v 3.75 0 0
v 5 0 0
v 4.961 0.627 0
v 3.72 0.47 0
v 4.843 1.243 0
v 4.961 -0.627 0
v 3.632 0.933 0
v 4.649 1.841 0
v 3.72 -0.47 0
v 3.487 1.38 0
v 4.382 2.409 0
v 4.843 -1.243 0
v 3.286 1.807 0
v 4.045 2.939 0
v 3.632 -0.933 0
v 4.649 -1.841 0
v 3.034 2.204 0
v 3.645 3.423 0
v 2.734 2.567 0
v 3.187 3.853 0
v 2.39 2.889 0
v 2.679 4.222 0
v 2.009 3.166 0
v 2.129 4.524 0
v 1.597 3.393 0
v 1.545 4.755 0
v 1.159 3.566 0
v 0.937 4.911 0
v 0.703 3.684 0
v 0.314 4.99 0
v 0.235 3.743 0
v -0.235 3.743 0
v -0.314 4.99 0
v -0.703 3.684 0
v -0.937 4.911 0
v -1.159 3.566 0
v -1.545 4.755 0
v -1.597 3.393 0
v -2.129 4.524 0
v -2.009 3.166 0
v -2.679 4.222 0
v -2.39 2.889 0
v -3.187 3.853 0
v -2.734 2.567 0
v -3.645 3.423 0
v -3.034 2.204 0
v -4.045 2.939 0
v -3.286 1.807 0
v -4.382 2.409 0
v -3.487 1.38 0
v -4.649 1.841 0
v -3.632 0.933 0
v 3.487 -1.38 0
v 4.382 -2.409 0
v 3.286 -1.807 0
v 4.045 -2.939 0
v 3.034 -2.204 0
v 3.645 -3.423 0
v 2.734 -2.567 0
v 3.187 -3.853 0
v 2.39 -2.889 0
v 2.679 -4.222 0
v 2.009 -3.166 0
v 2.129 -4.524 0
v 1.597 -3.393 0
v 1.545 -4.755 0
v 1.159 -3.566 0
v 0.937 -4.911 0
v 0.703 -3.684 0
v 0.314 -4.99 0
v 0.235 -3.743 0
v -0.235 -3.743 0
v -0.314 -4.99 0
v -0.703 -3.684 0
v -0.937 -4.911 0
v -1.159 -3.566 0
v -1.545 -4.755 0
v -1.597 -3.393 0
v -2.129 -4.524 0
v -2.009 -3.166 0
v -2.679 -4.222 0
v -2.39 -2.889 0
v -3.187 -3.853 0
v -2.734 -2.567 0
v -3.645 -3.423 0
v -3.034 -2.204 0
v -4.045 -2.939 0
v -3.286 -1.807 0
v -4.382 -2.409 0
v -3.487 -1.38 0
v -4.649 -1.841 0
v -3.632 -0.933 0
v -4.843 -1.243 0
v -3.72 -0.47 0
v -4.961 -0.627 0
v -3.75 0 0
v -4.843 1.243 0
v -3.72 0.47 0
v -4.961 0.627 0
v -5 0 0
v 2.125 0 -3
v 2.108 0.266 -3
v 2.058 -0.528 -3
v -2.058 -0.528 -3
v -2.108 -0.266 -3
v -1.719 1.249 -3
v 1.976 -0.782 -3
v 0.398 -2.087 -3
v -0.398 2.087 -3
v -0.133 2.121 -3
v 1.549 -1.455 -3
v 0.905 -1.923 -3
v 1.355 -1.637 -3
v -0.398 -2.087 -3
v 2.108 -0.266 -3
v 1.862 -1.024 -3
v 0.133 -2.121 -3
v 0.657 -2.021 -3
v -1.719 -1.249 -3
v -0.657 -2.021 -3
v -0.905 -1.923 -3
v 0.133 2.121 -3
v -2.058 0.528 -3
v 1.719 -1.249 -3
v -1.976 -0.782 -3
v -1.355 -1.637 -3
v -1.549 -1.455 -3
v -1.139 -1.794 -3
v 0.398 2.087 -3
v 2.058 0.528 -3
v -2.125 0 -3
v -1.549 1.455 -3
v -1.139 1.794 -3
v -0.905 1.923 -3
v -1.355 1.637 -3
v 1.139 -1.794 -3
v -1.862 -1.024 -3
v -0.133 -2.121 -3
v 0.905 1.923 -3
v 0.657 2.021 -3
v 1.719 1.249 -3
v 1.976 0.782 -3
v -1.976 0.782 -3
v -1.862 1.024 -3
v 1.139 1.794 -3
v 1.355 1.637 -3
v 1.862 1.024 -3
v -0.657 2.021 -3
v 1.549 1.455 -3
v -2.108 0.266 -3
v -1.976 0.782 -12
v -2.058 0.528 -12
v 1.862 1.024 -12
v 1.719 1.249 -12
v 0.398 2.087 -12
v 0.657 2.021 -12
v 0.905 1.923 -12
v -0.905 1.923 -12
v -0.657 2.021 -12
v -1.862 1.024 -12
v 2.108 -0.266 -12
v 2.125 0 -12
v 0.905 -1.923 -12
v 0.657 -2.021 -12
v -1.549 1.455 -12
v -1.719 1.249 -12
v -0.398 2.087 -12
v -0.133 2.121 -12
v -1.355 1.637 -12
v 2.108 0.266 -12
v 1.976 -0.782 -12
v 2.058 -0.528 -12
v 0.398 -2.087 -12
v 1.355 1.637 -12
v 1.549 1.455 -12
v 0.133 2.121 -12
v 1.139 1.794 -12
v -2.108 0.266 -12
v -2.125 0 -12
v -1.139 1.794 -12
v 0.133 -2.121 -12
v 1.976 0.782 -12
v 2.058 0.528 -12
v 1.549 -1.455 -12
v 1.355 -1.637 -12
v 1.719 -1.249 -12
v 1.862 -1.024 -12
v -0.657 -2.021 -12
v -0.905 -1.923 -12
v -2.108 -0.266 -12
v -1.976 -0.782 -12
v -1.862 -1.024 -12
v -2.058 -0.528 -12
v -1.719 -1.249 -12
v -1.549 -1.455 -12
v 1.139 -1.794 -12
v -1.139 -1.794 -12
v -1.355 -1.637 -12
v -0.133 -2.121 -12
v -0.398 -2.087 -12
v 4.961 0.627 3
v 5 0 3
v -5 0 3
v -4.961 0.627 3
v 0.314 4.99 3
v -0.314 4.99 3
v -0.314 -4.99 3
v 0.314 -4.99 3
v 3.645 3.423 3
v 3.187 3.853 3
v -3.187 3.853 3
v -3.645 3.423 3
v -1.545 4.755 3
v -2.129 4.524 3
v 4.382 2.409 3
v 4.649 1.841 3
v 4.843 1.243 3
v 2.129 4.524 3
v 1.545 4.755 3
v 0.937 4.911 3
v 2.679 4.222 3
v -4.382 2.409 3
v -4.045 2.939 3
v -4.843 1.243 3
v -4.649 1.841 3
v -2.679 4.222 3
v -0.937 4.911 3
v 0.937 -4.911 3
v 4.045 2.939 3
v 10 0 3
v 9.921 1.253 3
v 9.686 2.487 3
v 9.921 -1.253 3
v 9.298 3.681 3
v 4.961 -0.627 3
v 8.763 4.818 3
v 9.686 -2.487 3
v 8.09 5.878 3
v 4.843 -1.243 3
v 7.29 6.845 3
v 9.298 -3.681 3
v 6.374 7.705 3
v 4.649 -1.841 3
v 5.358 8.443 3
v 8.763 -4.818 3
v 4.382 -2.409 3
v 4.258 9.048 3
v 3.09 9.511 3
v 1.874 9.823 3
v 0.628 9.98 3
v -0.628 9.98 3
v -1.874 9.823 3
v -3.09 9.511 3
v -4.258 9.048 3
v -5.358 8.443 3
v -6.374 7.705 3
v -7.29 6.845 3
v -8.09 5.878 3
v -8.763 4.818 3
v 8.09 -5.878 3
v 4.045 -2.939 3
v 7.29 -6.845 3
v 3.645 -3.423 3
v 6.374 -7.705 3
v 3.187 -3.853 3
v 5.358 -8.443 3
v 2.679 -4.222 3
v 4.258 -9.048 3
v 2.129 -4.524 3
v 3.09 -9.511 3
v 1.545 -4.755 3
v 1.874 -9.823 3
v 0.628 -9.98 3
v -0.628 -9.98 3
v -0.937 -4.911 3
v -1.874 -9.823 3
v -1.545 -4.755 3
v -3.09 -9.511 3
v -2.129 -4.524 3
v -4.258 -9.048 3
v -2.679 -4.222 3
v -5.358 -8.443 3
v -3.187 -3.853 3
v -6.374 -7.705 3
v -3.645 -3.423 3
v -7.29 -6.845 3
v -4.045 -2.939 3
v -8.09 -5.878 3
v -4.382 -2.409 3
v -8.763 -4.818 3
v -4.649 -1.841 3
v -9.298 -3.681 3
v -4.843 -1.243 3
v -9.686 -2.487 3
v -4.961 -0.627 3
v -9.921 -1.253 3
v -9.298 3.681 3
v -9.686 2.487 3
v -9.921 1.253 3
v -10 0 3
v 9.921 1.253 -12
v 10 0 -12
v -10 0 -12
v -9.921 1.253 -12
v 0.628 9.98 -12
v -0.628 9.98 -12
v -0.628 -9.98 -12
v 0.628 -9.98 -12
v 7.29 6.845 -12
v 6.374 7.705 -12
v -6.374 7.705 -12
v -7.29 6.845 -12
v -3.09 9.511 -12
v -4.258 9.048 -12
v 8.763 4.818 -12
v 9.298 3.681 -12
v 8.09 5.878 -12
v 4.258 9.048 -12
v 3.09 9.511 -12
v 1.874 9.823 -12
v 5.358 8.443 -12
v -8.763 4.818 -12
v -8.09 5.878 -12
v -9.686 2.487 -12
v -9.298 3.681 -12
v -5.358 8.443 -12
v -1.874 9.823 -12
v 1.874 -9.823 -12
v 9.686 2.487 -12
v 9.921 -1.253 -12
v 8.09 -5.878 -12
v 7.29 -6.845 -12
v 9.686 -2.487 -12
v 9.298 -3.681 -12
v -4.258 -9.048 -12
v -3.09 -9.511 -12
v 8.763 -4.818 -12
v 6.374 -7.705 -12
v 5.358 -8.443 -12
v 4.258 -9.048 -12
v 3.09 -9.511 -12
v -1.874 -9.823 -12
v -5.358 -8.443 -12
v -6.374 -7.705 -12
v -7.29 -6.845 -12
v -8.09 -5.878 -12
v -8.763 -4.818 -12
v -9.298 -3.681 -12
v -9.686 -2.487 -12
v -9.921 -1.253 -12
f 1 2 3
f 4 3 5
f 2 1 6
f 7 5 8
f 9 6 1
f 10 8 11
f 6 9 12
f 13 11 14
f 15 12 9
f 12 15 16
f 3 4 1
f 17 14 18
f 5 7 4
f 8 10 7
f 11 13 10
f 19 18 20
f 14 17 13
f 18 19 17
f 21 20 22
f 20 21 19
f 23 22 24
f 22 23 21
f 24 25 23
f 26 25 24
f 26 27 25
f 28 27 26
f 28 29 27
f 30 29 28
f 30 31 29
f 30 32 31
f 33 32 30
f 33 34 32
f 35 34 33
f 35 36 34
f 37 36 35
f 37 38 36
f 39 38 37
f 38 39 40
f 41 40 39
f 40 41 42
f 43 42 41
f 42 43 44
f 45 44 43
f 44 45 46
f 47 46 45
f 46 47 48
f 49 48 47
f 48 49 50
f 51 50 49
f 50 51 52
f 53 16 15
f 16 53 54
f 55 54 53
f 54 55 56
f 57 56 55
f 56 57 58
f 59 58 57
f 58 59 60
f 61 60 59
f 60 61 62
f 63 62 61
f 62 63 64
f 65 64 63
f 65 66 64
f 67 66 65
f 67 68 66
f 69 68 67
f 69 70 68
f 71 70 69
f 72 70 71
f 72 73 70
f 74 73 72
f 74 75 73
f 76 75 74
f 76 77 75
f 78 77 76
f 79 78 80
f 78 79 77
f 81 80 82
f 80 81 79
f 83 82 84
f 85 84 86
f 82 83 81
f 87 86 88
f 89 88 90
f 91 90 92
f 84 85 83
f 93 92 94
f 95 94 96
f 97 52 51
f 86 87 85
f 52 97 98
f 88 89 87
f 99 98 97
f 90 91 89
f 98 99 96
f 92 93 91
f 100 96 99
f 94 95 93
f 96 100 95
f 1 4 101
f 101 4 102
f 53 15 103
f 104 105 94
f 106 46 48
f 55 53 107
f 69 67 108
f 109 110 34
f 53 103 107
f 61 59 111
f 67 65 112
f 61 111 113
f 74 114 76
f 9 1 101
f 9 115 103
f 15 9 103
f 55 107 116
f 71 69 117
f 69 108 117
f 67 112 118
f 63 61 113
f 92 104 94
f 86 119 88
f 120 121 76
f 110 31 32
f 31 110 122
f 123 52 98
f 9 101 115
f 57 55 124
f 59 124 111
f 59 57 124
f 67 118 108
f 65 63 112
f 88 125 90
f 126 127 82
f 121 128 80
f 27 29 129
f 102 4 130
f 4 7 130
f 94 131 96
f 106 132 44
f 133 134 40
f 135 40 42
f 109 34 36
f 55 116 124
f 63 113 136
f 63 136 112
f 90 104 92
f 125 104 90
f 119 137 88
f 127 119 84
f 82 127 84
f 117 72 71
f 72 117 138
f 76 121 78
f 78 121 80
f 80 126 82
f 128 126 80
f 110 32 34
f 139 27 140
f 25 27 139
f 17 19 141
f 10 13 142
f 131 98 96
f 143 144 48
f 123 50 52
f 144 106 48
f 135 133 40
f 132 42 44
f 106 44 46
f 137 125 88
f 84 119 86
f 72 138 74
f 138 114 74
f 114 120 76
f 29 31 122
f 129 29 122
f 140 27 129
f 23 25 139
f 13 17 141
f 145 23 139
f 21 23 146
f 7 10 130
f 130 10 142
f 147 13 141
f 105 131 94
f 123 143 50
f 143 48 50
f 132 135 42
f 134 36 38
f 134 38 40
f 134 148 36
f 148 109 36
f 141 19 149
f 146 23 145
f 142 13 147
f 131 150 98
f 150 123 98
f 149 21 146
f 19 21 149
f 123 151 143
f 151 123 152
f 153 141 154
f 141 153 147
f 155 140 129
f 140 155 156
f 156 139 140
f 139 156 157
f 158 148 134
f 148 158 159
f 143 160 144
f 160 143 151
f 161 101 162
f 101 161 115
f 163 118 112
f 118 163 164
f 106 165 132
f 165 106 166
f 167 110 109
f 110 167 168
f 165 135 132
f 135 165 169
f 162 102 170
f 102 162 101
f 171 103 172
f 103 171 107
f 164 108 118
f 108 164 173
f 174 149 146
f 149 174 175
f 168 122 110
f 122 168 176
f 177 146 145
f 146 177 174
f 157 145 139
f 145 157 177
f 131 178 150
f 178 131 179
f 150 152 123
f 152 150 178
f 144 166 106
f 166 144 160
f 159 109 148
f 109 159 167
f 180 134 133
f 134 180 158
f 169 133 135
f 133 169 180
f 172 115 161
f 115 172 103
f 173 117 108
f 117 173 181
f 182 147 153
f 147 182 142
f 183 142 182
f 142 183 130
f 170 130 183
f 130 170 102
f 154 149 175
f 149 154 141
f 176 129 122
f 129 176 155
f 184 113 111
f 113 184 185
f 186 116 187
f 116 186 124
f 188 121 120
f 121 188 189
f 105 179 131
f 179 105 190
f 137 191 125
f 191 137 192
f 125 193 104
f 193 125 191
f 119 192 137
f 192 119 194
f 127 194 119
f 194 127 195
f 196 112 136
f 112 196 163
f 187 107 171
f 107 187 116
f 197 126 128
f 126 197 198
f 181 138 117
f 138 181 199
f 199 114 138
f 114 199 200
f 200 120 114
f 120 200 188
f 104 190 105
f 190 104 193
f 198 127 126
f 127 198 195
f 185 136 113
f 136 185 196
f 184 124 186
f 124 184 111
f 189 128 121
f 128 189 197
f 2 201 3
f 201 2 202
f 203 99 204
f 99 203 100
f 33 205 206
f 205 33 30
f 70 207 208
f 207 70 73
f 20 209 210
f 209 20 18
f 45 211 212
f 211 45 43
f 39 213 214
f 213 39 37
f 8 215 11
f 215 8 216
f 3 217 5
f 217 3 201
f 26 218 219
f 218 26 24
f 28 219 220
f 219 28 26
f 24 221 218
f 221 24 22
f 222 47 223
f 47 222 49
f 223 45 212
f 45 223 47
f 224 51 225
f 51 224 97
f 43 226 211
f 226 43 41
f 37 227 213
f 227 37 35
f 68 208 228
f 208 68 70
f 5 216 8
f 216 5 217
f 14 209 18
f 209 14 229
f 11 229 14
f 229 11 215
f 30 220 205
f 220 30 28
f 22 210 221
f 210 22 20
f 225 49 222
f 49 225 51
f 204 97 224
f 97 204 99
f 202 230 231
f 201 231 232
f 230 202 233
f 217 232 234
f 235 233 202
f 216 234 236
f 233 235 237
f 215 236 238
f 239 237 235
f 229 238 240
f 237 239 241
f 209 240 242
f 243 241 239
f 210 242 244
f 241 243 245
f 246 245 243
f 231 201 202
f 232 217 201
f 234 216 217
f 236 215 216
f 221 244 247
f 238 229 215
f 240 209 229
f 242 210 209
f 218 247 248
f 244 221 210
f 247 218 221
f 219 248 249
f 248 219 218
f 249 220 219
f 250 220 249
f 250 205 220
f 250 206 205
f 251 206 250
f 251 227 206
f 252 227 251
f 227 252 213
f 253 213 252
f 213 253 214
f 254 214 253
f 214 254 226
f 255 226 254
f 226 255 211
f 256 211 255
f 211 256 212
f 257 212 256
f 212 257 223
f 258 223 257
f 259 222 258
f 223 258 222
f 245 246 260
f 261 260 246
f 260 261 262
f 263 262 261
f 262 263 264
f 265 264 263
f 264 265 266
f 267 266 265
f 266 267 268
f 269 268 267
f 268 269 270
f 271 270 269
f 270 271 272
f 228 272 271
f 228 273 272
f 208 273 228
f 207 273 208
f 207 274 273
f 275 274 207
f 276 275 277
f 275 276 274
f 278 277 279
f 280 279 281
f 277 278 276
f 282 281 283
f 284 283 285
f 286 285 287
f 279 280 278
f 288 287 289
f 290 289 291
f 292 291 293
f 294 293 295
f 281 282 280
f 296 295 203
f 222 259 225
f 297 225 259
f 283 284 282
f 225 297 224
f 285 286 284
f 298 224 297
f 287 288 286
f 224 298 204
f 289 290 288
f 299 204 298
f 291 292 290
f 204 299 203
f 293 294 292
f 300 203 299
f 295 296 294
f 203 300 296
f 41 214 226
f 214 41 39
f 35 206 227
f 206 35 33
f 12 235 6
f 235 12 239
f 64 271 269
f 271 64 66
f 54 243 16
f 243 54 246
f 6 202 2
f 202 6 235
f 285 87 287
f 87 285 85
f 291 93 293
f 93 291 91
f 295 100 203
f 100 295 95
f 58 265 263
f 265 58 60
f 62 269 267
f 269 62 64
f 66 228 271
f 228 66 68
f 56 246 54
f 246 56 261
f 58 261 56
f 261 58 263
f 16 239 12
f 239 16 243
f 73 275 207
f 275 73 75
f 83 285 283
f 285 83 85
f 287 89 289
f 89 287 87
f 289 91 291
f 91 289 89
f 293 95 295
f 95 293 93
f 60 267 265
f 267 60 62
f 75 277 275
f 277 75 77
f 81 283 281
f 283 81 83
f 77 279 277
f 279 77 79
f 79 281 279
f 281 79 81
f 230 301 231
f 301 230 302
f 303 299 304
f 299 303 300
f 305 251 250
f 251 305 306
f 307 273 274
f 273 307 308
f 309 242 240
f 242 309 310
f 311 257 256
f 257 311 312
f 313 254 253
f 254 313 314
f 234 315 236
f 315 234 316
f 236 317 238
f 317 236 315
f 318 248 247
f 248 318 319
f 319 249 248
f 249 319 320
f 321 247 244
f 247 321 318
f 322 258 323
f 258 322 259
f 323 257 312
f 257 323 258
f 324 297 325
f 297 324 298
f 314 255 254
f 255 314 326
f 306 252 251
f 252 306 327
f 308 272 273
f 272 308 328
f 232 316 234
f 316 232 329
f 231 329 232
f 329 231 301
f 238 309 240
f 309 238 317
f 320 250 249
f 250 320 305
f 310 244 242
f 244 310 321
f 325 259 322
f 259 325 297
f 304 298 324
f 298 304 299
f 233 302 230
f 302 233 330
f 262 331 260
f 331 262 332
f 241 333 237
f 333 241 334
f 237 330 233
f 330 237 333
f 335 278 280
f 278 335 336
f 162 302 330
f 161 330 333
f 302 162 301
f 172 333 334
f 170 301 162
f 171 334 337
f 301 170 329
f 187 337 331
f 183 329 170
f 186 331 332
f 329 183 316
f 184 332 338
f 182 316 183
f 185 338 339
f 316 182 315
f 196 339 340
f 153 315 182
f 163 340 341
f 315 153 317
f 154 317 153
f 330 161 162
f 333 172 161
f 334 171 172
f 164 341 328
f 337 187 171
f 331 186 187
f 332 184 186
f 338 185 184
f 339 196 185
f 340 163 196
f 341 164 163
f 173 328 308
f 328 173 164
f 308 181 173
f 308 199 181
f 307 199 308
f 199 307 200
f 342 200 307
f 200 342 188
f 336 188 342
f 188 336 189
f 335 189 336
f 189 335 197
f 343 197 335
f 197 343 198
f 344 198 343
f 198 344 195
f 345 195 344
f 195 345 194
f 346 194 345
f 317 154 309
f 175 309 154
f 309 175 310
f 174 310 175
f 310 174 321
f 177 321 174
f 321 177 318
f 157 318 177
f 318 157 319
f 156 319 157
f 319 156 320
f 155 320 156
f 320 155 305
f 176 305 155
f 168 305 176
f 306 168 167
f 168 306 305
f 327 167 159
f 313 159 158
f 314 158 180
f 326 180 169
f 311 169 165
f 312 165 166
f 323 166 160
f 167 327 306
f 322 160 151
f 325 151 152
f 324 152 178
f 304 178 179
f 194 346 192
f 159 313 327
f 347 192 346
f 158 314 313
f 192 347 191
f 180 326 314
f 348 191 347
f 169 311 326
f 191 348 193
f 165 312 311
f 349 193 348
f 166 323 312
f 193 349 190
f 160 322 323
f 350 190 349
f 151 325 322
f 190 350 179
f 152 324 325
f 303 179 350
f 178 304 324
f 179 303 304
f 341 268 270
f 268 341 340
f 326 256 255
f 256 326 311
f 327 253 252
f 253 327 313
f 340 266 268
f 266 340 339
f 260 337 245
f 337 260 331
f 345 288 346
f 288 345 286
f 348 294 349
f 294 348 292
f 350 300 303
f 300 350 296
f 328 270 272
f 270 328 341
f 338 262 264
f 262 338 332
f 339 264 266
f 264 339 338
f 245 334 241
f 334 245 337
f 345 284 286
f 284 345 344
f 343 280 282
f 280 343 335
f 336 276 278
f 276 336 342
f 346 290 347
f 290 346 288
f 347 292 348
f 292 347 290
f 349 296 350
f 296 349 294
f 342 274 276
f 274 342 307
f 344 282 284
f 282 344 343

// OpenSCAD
$fn = 50;

difference() {
	union() {
		translate(v = [0, 0, -12.0]) {
			cylinder(h = 15, r = 10.0);
		}
	}
	union() {
		translate(v = [0, 0, 0]) {
			rotate(a = [0, 0, 0]) {
				difference() {
					union() {
						translate(v = [0, 0, -15.0]) {
							cylinder(h = 15, r = 2.0);
						}
						translate(v = [0, 0, -3]) {
							cylinder(h = 3, r1 = 2.125, r2 = 3.75);
						}
						translate(v = [0, 0, -15.0]) {
							cylinder(h = 15, r = 2.125);
						}
						translate(v = [0, 0, -15.0]) {
							cylinder(h = 15, r = 2.0);
						}
					}
					union();
				}
			}
		}
		#cylinder(h = 3, r = 5.0);
	}
}
